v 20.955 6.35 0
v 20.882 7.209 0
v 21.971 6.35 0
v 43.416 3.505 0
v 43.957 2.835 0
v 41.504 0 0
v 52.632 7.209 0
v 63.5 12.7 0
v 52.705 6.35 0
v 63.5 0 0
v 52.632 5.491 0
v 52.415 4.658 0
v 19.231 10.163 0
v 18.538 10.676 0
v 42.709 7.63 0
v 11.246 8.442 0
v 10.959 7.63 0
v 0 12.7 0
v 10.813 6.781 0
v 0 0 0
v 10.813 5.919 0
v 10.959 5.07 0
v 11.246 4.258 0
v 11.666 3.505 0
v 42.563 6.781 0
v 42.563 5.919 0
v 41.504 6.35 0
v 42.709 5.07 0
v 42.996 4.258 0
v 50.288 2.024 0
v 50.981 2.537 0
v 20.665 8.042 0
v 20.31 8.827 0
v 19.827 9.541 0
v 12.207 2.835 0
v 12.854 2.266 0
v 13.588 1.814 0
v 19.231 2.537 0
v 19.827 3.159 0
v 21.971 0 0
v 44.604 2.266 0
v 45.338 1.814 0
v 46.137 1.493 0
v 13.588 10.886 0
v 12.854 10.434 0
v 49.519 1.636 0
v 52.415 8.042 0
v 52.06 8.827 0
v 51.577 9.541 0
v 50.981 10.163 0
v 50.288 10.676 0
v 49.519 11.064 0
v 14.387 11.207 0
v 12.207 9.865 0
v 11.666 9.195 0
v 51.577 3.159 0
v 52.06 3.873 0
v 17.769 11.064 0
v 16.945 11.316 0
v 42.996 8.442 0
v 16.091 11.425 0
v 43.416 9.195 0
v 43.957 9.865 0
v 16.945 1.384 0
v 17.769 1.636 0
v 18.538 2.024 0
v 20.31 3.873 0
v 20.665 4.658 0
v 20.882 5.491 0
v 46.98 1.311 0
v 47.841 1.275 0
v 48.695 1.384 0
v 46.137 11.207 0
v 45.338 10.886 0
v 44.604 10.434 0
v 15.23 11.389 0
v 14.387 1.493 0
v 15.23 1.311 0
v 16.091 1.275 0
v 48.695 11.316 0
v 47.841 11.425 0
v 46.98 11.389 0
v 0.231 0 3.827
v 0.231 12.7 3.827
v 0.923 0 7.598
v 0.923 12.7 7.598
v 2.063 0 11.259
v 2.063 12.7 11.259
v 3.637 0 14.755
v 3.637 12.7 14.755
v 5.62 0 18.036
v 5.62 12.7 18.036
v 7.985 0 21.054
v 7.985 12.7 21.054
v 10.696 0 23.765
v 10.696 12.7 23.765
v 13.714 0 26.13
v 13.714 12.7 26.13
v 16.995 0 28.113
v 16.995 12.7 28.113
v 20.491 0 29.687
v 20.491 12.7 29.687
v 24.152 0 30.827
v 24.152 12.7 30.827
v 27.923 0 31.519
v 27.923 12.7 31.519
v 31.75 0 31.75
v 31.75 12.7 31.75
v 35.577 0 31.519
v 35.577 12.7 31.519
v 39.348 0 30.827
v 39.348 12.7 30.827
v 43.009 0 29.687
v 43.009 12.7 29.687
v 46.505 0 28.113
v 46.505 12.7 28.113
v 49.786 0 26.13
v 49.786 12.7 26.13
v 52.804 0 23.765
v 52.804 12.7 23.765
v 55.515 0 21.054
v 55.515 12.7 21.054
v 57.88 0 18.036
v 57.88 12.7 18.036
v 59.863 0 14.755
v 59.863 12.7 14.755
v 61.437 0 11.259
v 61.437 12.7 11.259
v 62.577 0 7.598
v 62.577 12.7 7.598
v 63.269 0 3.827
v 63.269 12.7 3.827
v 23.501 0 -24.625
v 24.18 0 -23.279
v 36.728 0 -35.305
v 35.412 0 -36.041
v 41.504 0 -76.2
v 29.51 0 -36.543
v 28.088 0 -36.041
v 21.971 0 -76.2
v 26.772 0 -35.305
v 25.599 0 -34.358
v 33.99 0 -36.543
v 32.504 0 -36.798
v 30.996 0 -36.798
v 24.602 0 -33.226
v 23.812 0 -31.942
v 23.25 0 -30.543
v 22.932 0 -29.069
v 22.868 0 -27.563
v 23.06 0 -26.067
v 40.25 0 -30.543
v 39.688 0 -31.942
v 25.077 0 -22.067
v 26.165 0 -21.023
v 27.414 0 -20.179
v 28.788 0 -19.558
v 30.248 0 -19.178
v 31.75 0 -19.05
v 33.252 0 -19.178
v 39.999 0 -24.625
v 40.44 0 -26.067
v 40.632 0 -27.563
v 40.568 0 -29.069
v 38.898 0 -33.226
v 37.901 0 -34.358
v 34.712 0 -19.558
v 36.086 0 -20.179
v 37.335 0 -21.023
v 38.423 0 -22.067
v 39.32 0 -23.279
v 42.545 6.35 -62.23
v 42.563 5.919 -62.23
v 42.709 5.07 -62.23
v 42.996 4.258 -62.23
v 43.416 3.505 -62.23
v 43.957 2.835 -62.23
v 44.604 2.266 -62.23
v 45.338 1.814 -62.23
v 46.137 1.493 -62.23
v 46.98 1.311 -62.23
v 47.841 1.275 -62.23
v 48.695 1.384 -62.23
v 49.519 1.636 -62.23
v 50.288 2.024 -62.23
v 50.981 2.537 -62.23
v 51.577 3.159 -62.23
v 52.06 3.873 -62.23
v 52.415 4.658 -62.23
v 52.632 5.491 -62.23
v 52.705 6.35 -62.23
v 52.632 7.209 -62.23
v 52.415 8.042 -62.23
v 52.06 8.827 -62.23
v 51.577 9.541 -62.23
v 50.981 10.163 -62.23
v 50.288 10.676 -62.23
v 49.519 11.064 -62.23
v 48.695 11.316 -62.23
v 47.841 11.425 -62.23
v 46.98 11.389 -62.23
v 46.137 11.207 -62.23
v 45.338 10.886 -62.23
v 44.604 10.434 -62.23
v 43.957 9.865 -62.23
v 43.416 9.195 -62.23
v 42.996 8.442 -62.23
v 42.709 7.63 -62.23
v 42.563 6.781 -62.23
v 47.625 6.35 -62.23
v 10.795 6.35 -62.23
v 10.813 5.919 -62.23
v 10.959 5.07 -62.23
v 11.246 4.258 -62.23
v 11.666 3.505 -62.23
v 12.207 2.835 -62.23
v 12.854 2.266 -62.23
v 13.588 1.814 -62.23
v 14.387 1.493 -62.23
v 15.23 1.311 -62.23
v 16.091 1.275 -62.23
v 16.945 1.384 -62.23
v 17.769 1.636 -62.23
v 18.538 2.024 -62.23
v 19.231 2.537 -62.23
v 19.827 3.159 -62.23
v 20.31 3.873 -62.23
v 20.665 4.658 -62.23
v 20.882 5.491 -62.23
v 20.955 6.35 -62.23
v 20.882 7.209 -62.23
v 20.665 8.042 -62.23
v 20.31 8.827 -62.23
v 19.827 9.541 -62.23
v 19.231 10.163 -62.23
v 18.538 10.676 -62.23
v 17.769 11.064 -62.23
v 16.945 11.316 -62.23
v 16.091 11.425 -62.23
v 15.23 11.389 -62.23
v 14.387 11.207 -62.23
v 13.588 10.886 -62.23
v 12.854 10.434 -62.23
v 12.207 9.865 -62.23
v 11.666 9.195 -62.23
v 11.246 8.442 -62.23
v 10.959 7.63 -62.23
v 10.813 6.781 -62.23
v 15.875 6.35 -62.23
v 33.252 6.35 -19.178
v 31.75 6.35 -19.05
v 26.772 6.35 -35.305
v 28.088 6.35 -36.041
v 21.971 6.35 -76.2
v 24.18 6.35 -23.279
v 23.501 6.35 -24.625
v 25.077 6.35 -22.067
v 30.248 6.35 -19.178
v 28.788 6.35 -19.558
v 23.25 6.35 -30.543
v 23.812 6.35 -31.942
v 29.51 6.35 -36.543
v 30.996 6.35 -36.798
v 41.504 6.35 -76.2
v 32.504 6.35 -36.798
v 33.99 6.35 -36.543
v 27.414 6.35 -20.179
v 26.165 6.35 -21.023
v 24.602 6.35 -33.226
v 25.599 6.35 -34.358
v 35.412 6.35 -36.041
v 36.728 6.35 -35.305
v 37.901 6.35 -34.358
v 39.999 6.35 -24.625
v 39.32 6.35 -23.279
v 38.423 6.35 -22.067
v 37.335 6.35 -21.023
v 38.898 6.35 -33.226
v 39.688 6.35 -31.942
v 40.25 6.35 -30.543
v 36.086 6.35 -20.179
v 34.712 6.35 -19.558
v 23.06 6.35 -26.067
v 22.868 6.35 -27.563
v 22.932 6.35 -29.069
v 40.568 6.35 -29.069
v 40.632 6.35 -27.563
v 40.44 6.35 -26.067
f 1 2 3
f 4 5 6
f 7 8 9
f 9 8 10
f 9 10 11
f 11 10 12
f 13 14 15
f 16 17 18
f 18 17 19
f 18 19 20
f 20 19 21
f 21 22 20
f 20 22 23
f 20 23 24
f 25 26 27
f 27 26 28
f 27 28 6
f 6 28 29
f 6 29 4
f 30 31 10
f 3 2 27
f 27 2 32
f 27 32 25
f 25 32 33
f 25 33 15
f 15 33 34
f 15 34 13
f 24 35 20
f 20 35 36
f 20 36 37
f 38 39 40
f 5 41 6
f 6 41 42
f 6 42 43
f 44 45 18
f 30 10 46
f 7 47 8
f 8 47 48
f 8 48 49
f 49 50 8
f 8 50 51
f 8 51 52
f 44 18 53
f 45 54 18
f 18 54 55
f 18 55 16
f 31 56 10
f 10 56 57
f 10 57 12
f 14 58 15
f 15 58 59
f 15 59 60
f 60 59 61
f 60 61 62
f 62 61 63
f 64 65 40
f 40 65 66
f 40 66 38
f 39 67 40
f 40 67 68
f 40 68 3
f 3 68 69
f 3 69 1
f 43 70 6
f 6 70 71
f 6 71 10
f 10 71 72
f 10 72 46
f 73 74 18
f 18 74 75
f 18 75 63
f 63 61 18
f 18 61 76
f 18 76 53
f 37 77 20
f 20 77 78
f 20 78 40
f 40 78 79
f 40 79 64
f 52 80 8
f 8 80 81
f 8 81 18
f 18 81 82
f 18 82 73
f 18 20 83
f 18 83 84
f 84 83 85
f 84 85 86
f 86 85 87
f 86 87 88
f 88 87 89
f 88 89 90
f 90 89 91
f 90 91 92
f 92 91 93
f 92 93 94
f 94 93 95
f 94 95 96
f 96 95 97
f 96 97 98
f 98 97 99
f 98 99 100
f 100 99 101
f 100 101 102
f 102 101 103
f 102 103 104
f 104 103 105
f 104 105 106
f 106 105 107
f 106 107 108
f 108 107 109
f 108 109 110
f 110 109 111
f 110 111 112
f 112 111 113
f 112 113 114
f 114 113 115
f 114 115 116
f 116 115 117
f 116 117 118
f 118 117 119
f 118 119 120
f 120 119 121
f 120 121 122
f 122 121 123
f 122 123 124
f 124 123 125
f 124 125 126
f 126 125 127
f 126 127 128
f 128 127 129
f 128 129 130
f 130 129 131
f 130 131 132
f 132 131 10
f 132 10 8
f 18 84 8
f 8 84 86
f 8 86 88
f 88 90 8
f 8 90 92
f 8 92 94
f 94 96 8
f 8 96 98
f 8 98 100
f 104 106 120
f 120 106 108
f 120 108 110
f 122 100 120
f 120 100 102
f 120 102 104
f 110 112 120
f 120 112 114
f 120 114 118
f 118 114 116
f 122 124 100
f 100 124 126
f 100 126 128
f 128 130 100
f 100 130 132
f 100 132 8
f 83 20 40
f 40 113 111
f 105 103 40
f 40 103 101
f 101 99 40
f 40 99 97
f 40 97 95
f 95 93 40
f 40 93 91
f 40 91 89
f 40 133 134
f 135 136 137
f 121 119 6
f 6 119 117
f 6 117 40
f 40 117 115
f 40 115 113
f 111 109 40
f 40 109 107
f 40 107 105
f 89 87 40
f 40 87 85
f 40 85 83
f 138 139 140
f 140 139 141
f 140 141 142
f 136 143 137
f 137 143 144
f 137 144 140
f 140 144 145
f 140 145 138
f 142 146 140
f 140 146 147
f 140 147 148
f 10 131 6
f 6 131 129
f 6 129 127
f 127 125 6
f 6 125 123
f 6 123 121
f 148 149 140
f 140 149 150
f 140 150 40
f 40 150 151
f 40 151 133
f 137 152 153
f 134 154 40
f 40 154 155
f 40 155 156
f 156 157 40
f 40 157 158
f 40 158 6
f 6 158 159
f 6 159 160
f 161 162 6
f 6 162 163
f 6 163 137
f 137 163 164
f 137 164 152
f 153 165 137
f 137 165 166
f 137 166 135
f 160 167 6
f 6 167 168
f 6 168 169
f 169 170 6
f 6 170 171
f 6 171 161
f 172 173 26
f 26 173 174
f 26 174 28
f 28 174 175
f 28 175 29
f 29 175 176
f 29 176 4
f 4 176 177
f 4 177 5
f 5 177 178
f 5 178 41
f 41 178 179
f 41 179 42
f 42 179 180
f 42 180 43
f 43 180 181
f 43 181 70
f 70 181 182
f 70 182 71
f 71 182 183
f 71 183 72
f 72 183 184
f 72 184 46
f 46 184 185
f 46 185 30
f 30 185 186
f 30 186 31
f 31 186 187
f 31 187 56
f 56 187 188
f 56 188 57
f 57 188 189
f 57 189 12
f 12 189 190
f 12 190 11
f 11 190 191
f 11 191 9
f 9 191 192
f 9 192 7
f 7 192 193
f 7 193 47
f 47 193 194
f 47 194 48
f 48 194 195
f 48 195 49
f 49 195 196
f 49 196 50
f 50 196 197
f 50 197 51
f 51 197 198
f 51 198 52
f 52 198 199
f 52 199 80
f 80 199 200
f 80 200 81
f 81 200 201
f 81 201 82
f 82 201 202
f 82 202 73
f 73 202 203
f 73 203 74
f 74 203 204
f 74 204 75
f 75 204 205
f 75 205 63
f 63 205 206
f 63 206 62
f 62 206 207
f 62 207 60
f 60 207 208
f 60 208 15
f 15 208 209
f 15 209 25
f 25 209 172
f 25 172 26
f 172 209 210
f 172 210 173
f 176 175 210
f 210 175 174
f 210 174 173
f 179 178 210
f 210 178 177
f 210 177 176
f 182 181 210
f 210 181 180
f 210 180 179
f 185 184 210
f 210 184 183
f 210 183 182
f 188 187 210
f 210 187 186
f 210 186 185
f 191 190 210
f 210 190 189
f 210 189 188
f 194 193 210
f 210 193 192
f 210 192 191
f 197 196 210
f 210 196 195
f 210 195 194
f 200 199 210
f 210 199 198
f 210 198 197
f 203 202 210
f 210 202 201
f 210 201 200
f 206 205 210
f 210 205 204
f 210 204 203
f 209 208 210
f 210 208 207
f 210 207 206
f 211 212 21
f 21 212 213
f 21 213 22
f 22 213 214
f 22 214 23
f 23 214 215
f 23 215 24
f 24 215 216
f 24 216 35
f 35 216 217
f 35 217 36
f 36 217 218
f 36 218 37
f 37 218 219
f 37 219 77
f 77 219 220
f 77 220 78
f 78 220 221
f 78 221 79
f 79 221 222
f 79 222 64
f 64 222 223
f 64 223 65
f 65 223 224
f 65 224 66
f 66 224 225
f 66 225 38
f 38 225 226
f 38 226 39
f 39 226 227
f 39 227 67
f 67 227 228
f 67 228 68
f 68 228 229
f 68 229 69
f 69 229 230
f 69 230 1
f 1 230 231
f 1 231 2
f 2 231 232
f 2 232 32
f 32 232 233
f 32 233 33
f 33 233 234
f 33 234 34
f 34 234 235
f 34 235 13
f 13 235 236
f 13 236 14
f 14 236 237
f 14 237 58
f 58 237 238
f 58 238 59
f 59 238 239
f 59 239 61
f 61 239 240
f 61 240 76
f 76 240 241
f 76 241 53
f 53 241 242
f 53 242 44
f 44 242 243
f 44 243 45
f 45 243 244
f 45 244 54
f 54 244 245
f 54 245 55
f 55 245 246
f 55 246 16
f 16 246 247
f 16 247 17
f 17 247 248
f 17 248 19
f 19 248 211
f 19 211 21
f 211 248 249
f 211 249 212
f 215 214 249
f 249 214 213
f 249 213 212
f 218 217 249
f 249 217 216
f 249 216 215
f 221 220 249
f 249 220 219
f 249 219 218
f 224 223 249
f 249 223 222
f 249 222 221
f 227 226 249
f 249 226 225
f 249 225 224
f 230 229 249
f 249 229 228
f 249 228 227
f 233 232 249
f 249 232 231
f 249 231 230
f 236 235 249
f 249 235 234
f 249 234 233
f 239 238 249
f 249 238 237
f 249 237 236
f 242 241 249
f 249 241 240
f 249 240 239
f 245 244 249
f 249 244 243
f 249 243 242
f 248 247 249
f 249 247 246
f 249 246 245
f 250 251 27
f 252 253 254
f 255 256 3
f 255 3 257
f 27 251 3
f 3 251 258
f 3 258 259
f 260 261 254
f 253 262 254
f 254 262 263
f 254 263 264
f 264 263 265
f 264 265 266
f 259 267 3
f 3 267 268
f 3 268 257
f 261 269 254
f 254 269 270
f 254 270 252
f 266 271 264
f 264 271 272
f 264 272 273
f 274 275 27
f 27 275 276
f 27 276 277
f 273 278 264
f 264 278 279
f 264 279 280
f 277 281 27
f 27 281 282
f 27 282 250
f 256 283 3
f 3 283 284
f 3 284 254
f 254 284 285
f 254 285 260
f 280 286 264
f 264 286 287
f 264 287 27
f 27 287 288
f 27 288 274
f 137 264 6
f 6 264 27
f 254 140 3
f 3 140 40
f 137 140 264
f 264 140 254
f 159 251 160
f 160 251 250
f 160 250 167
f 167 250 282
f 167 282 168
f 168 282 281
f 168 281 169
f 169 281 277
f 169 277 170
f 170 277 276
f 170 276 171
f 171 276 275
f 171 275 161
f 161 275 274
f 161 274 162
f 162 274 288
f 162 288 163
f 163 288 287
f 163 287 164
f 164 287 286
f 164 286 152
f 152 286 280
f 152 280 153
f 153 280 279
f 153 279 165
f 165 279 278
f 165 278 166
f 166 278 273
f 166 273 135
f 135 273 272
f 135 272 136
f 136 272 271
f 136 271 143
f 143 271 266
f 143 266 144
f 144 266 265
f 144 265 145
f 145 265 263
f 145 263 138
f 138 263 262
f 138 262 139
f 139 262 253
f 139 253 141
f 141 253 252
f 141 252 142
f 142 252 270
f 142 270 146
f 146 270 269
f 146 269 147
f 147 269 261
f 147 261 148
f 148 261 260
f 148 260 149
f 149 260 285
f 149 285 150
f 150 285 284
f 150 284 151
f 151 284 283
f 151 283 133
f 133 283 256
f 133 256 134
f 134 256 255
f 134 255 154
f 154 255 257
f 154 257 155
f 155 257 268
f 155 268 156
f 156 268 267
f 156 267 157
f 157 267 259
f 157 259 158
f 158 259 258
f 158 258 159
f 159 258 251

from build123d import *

# Parameters (mm, degrees)
SKETCH2_W           = 31.75
SKETCH2_H           = 12.7
REVOLVE1_ANGLE      = 180
SKETCH3_R           = 5.08
BOSS_EXTRUDE1_DEPTH = 62.23
SKETCH4_W           = 19.5326
SKETCH4_H           = 6.35
BOSS_EXTRUDE2_DEPTH = 76.2
SKETCH5_R           = 8.89
CUT_EXTRUDE1_DEPTH  = 76.2


with BuildPart() as part:
    # Sketch2 → Revolve1 (revolve)
    with BuildSketch(Plane.XY):
        with Locations((15.875, 6.35)):
            Rectangle(SKETCH2_W, SKETCH2_H)
    revolve(axis=Axis((31.75, 0, 0), (0, 1, 0)), revolution_arc=REVOLVE1_ANGLE)

    # Sketch3 → Boss-Extrude1 (add)
    with BuildSketch(Plane(origin=(0, 0, 0), x_dir=(-1, 0, 0), z_dir=(0, 0, -1))):
        with Locations((-47.625, 6.35)):
            Circle(SKETCH3_R)
        with Locations((-15.875, 6.35)):
            Circle(SKETCH3_R)
    extrude(amount=BOSS_EXTRUDE1_DEPTH)

    # Sketch4 → Boss-Extrude2 (add)
    with BuildSketch(Plane(origin=(0, 0, 0), x_dir=(-1, 0, 0), z_dir=(0, 0, -1))):
        with Locations((-31.7373, 3.175)):
            Rectangle(SKETCH4_W, SKETCH4_H)
    extrude(amount=BOSS_EXTRUDE2_DEPTH)

    # Sketch5 → Cut-Extrude1 (cut)
    with BuildSketch(Plane(origin=(0, 6.35, 0), x_dir=(1, 0, 0), z_dir=(0, 1, 0))):
        with Locations((31.75, 27.94)):
            Circle(SKETCH5_R)
    extrude(amount=-CUT_EXTRUDE1_DEPTH, mode=Mode.SUBTRACT)


solid = part.part
